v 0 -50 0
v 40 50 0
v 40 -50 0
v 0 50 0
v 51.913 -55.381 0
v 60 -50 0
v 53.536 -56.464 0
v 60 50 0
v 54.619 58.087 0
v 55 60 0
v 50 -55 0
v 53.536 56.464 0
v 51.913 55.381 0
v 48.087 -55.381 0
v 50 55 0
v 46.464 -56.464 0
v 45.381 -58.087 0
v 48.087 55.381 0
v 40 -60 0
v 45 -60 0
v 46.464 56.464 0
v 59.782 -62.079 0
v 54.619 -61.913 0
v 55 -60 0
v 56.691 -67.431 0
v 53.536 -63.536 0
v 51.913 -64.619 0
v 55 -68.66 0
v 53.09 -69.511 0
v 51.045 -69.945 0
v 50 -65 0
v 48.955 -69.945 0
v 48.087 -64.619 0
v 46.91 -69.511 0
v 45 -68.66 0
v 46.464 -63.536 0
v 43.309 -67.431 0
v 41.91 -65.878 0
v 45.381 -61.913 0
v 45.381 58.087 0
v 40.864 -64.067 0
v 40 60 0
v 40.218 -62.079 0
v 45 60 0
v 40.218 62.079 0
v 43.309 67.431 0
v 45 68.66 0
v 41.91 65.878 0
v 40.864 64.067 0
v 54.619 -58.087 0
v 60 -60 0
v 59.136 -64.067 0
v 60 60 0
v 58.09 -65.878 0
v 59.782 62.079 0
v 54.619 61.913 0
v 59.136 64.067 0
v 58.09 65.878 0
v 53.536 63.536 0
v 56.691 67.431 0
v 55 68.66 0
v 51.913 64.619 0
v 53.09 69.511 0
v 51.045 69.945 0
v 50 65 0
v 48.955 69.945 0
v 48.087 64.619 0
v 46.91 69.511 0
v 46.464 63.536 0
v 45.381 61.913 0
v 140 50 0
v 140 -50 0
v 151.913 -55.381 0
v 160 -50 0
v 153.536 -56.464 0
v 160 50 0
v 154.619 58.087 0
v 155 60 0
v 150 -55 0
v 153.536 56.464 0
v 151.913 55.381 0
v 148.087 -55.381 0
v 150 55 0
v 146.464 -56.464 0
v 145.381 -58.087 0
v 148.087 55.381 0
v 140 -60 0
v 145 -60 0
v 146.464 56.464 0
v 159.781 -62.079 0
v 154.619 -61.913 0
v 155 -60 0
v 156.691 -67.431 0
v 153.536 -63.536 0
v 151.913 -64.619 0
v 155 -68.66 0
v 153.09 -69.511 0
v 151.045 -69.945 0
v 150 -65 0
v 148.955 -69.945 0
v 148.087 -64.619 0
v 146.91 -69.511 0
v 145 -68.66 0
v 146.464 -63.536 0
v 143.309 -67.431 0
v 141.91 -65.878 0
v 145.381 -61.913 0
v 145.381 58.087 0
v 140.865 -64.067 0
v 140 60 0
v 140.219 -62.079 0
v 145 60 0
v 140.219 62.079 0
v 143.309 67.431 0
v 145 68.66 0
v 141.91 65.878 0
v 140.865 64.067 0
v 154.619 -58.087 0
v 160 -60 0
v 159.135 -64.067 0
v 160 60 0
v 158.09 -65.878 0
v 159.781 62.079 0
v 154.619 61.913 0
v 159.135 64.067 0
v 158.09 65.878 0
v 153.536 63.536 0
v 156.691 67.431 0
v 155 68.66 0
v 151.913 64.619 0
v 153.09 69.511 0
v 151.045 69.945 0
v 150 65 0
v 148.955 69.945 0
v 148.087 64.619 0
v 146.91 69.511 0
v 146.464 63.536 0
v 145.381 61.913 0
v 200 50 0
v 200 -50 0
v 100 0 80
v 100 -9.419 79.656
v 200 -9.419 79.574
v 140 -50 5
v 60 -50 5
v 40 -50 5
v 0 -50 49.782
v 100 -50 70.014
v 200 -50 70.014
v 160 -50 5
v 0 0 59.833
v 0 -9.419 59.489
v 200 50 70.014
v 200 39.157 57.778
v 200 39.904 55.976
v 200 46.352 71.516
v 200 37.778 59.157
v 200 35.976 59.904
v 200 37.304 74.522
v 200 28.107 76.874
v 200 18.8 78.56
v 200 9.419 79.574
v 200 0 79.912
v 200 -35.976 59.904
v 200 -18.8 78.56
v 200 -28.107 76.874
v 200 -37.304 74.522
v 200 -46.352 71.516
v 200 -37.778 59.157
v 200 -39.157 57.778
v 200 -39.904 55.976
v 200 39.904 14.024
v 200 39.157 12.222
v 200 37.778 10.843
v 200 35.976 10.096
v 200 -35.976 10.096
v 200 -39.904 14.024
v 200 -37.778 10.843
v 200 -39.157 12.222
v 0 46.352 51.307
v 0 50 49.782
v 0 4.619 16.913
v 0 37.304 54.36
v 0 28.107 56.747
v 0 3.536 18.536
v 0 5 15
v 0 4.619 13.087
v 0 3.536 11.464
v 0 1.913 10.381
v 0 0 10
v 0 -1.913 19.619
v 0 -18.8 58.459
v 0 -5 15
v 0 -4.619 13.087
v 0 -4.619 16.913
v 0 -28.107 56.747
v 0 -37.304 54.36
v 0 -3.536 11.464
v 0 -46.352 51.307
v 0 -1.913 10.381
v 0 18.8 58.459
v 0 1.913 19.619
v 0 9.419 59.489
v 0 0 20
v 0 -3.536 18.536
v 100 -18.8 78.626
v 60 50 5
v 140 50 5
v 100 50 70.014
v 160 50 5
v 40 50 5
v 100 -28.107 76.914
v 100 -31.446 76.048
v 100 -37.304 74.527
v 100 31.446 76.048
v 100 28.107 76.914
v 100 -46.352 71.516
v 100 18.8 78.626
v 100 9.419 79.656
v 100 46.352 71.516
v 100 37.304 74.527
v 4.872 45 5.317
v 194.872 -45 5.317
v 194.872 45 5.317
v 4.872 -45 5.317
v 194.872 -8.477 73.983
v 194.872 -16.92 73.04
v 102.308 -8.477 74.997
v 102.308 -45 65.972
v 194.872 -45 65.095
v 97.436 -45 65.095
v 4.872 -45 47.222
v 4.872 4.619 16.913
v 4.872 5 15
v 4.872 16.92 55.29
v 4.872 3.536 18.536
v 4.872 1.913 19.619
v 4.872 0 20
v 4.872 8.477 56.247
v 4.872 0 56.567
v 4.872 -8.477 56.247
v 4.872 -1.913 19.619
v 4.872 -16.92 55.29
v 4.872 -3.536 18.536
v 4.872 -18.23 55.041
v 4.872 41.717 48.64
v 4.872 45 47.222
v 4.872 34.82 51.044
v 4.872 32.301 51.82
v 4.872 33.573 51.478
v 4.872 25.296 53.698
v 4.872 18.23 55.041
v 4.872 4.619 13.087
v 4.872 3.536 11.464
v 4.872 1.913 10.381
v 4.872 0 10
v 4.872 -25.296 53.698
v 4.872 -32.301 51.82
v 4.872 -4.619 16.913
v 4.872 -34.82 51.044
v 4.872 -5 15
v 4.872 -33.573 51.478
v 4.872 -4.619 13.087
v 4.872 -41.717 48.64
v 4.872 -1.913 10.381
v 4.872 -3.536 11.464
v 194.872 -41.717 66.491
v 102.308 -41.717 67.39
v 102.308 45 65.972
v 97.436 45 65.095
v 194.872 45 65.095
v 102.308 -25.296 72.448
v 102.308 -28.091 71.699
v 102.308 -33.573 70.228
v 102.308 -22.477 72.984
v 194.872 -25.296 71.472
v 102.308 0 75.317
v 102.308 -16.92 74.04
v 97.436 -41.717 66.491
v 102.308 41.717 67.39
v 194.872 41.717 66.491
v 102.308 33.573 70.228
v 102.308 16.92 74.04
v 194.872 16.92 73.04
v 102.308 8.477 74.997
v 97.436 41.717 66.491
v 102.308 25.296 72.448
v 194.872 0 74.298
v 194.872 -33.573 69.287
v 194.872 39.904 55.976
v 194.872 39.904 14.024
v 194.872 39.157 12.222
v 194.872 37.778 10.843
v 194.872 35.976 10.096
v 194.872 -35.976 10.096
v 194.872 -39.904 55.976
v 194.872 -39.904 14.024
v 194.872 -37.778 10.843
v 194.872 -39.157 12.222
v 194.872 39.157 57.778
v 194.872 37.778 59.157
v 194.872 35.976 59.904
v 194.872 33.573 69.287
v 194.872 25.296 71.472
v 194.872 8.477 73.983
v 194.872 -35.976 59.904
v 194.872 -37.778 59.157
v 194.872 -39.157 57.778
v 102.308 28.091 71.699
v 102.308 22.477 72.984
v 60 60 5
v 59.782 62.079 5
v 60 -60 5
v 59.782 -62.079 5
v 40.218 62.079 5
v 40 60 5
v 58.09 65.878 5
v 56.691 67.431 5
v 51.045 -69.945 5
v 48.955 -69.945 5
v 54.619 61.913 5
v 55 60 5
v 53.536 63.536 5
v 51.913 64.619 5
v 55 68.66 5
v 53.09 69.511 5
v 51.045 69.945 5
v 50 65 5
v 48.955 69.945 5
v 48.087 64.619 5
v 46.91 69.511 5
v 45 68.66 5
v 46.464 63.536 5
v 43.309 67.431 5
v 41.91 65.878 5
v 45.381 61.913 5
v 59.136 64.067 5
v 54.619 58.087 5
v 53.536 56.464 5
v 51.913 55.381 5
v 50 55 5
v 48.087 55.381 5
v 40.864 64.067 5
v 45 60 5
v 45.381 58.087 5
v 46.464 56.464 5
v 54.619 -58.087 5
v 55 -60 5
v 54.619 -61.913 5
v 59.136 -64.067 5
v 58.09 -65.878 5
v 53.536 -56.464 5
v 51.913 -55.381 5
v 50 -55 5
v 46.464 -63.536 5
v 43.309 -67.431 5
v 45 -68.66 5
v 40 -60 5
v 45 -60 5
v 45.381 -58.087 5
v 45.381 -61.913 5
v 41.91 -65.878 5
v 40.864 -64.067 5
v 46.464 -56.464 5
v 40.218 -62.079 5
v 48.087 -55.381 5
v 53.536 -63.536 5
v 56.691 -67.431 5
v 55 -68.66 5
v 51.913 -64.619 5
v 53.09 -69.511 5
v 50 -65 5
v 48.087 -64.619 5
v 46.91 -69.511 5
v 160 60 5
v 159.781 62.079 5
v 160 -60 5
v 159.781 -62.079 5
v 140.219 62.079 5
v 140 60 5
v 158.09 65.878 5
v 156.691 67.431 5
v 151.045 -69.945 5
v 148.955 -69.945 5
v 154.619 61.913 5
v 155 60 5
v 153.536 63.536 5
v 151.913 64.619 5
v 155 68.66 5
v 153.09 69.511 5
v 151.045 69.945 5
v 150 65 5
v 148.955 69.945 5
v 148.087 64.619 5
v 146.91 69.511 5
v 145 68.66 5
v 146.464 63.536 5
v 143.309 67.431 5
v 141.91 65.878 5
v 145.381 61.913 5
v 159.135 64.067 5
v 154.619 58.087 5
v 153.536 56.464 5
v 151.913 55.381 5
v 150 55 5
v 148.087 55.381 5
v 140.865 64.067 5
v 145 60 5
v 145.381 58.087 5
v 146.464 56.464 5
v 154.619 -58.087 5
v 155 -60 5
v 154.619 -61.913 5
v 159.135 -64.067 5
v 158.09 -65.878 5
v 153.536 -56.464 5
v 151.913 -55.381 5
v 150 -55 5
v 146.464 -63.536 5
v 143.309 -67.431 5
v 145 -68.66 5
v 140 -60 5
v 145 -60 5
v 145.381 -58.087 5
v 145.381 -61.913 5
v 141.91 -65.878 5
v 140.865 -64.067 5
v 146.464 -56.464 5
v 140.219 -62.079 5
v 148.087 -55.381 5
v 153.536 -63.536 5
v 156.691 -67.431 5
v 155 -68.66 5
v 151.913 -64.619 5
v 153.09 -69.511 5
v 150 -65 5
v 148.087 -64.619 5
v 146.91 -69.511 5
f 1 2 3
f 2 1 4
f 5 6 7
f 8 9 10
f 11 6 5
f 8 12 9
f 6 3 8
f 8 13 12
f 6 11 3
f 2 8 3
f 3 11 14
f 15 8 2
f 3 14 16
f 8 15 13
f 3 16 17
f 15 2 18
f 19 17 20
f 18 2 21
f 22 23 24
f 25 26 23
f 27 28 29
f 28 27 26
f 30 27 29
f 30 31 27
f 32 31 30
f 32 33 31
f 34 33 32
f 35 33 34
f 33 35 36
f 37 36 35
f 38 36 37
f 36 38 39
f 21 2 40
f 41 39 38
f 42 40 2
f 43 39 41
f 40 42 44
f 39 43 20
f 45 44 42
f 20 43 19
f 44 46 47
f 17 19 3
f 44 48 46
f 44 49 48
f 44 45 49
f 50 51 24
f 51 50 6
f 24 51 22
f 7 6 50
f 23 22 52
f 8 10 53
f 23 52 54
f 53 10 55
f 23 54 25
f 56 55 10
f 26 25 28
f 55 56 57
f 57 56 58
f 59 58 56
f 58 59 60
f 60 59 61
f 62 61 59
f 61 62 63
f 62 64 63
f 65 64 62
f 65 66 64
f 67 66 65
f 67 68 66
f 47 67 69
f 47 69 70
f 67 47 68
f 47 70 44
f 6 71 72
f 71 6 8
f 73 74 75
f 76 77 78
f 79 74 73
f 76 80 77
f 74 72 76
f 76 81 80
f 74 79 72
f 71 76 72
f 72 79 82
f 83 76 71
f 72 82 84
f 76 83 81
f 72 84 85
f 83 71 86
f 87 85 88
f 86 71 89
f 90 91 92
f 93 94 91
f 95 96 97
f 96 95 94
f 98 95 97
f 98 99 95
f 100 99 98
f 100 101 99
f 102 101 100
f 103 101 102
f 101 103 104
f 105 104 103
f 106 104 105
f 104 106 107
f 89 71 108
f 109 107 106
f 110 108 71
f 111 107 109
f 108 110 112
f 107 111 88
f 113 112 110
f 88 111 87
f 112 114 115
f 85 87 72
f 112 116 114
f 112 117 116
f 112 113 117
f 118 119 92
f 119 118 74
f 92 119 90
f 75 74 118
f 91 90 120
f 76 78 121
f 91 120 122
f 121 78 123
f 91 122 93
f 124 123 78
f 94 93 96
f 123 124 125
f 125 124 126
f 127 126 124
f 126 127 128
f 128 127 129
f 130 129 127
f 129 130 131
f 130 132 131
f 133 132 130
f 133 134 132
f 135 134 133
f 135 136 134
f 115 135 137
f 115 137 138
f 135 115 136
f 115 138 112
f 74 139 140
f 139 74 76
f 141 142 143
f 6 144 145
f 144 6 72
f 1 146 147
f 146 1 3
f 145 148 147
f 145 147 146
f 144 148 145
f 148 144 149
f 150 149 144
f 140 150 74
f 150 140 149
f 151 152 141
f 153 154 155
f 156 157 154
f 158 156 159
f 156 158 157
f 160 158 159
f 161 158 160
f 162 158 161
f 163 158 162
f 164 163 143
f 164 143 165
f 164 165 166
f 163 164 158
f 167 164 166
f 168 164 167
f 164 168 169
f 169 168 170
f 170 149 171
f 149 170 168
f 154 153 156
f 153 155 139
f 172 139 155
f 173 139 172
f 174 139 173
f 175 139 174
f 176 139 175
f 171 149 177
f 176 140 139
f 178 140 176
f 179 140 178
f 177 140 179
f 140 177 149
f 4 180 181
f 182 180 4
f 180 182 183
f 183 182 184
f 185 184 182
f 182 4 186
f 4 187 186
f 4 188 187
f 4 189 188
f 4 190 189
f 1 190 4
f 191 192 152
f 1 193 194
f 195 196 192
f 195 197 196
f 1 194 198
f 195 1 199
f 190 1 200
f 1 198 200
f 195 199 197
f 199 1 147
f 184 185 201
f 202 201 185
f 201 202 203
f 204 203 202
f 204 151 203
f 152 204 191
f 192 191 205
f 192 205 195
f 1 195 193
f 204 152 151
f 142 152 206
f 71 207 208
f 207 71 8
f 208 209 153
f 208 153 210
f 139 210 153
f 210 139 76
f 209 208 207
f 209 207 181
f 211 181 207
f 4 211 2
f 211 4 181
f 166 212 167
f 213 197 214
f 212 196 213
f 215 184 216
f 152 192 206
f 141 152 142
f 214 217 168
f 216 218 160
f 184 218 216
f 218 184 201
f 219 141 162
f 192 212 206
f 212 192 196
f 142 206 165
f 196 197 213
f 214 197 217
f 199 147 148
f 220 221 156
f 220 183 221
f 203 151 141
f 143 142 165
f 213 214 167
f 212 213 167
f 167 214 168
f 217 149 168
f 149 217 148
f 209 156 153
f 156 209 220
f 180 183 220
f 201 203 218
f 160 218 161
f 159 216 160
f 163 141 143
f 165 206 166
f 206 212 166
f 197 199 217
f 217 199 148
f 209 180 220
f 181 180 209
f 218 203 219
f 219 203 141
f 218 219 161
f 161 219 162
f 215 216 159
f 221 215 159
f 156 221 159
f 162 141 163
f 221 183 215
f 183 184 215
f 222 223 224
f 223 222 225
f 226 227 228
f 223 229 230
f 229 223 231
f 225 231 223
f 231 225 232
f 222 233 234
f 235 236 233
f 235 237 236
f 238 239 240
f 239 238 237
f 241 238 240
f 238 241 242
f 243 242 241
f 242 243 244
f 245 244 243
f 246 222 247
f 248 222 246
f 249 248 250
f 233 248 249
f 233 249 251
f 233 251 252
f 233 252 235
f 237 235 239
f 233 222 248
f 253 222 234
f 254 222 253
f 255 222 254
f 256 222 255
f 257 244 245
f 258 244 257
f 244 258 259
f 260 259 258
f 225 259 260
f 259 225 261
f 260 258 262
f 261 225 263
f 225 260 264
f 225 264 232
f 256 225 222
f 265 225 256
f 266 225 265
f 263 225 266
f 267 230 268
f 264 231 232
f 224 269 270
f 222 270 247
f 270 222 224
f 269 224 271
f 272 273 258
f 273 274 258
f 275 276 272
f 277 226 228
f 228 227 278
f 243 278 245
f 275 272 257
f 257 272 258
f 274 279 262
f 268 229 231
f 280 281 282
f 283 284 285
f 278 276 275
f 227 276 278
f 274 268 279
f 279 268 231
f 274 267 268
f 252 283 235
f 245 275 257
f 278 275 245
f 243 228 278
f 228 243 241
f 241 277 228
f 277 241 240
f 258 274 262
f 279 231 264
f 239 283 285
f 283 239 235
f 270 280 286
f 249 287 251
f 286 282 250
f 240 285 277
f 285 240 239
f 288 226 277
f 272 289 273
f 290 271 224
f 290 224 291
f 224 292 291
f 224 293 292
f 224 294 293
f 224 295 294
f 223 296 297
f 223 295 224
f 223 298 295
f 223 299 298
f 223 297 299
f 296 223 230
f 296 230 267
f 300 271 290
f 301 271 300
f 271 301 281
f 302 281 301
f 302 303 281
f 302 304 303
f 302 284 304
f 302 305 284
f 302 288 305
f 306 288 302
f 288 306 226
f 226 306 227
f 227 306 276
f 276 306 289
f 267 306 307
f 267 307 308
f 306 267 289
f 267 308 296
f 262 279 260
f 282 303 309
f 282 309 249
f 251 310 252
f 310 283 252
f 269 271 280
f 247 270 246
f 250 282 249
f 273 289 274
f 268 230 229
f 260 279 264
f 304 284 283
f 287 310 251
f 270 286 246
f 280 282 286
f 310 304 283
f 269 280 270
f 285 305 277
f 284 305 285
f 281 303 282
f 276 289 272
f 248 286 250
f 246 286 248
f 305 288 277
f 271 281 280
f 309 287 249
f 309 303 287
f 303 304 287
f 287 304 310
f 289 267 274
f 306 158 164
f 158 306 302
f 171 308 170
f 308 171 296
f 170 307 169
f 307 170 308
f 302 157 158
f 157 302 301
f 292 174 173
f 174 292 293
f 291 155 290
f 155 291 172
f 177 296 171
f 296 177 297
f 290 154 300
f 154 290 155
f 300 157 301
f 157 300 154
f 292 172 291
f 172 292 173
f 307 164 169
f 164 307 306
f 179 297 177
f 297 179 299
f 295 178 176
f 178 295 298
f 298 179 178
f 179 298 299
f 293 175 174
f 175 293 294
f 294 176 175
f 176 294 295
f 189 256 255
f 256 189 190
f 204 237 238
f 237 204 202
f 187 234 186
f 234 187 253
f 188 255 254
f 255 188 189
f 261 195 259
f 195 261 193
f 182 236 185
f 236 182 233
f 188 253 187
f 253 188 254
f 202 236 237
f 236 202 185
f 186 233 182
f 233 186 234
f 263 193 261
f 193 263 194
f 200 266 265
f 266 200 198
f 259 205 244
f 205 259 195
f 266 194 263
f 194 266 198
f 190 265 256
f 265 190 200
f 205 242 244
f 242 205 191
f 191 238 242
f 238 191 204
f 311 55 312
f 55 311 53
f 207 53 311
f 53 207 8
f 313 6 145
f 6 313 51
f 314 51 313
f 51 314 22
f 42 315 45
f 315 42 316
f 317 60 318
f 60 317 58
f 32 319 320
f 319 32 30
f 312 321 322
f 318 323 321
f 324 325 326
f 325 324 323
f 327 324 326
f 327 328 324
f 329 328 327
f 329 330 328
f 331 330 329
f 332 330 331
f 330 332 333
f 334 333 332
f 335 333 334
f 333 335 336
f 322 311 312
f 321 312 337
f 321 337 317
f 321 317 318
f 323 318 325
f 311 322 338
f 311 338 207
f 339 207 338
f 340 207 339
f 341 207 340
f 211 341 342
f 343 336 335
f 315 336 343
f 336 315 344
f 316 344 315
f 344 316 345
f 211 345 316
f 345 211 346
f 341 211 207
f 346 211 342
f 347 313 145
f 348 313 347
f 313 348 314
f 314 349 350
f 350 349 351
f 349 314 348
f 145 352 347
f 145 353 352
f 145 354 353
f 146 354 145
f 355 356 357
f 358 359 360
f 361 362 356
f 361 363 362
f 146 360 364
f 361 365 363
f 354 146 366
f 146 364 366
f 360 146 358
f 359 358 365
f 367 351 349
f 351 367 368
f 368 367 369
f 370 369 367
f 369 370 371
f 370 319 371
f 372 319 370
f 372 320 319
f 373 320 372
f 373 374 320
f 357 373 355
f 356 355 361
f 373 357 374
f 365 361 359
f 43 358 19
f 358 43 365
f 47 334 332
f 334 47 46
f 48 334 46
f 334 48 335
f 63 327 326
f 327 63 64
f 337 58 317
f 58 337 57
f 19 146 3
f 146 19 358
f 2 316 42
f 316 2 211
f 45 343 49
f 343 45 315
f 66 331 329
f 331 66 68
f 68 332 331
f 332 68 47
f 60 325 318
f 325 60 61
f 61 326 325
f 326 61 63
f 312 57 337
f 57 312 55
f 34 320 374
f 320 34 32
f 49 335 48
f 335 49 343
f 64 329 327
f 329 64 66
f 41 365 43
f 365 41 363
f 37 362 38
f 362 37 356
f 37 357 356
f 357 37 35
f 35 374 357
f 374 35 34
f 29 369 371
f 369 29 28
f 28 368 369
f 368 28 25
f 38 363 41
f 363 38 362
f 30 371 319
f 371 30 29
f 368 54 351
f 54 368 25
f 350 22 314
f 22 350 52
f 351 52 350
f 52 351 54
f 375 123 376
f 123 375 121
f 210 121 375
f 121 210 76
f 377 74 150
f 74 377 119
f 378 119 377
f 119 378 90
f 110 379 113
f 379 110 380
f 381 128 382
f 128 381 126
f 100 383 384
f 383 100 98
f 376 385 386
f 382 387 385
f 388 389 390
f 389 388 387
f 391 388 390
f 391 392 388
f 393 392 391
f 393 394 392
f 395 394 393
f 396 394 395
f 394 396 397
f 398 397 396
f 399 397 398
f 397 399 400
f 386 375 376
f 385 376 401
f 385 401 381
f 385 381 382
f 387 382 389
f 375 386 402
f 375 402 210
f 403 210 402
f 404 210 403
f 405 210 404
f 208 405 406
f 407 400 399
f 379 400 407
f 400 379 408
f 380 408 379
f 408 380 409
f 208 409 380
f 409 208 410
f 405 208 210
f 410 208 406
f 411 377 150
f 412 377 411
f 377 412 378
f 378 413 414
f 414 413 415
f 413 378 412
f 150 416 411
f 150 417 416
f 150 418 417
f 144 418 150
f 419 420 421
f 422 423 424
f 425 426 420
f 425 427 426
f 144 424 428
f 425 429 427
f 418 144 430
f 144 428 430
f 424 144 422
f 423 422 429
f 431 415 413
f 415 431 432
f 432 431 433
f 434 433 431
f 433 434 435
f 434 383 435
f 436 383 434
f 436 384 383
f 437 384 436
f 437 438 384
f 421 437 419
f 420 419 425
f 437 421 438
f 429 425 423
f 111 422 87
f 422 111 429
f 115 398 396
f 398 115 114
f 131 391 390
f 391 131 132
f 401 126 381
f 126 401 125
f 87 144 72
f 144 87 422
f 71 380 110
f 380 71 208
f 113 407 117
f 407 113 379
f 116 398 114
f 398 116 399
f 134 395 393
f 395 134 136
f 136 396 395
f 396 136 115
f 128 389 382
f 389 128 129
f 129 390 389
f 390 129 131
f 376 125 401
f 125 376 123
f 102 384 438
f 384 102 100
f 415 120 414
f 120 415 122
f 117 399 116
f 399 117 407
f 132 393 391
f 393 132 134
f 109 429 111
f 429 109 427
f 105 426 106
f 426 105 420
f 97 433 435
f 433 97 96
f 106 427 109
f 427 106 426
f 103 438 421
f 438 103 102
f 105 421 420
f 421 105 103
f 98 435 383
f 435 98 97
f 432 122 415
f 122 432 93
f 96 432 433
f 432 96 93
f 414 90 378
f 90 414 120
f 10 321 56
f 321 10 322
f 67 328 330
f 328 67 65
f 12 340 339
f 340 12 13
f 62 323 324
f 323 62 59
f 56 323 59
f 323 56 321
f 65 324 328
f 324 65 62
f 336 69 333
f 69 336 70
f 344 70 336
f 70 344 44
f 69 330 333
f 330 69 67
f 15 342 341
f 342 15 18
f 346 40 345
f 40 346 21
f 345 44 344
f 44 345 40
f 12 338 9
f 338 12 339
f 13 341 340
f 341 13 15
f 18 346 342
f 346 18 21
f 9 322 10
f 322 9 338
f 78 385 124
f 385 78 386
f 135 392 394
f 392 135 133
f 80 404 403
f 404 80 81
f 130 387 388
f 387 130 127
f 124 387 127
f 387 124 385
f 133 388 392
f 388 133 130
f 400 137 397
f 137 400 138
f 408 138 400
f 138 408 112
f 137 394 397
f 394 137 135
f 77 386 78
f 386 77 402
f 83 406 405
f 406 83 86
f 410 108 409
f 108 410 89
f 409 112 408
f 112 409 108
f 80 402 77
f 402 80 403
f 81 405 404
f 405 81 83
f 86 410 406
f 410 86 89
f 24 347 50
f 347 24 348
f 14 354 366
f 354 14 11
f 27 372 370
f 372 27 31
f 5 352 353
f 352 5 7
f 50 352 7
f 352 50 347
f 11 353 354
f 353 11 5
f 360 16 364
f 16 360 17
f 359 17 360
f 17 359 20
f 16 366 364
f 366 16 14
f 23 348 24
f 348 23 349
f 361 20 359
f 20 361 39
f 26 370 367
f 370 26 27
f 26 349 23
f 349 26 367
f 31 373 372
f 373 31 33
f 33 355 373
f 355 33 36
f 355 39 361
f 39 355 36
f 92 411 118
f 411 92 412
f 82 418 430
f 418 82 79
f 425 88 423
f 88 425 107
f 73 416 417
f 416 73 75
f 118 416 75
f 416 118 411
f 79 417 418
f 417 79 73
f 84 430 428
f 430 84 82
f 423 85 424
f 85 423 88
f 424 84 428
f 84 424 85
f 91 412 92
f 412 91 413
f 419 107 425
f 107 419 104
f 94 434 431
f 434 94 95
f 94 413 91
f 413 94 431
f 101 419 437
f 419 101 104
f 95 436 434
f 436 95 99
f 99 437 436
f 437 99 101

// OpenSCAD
/*
    Model by Curial Orrit - 2018
    All rights reserved
*/

//color("grey")
difference(){

// 1st go: SOLID BODY
resize([200,100,80], auto=true) {
    hull(){
        intersection(){
            translate([0,0,-100])
            rotate([0,80,0])
            cylinder(d=300, h=200, $fn=100, center=false);
            
            translate([0,-50,0])
            cube([100,100,180]);
        } // end intersect

        intersection(){
            translate([100,0,-80.13])
            rotate([0,90,0])
            cylinder(d=300, h=200, $fn=100, center=false);
            translate([100,-50,0])
            cube([100,100,180]);
        } // end intersect
    } // end hull
} // end resize

// 2nd go: HOLLOW
resize([190,90,70], auto=true) {
    hull(){
        intersection(){
            translate([0,0,-100])
            rotate([0,80,0])
            cylinder(d=300, h=200, $fn=100, center=false);
            
            translate([5,-50,5])
            cube([100,100,180]);
        } // end intersect

        intersection(){
            translate([100,0,-80.13])
            rotate([0,90,0])
            cylinder(d=300, h=200, $fn=100, center=false);
            translate([100,-50,5])
            cube([100,100,180]);
        } // end intersect
    } // end hull
} // end resize


// "finestra" frontal
translate([190,-35,15]) {
    minkowski(){
            cube([80,70,40]);
            sphere(5, center=true);
    }
}

// forat posterior
translate([-1,0,15])
rotate([0,90,0])
cylinder(r=5, h=10);

} // end difference



// suports
difference() {
    union(){
        hull(){ // 1st axis
            translate([50,60,2.5])
            cylinder(r=10, h=5, center=true);
            translate([50,-60,2.5])
            cylinder(r=10, h=5, center=true);
        }
        hull(){ // 2nd axis
            translate([150,60,2.5])
            cylinder(r=10, h=5, center=true);
            translate([150,-60,2.5])
            cylinder(r=10, h=5, center=true);
        }
    } // end union/color
    
    // holes
    for(i=[[50,60,0], [150,60,0], [50,-60,0], [150,-60,0]]){
        translate(i)
        cylinder(r=5, h=11, center=true);
    }    
} // end difference
